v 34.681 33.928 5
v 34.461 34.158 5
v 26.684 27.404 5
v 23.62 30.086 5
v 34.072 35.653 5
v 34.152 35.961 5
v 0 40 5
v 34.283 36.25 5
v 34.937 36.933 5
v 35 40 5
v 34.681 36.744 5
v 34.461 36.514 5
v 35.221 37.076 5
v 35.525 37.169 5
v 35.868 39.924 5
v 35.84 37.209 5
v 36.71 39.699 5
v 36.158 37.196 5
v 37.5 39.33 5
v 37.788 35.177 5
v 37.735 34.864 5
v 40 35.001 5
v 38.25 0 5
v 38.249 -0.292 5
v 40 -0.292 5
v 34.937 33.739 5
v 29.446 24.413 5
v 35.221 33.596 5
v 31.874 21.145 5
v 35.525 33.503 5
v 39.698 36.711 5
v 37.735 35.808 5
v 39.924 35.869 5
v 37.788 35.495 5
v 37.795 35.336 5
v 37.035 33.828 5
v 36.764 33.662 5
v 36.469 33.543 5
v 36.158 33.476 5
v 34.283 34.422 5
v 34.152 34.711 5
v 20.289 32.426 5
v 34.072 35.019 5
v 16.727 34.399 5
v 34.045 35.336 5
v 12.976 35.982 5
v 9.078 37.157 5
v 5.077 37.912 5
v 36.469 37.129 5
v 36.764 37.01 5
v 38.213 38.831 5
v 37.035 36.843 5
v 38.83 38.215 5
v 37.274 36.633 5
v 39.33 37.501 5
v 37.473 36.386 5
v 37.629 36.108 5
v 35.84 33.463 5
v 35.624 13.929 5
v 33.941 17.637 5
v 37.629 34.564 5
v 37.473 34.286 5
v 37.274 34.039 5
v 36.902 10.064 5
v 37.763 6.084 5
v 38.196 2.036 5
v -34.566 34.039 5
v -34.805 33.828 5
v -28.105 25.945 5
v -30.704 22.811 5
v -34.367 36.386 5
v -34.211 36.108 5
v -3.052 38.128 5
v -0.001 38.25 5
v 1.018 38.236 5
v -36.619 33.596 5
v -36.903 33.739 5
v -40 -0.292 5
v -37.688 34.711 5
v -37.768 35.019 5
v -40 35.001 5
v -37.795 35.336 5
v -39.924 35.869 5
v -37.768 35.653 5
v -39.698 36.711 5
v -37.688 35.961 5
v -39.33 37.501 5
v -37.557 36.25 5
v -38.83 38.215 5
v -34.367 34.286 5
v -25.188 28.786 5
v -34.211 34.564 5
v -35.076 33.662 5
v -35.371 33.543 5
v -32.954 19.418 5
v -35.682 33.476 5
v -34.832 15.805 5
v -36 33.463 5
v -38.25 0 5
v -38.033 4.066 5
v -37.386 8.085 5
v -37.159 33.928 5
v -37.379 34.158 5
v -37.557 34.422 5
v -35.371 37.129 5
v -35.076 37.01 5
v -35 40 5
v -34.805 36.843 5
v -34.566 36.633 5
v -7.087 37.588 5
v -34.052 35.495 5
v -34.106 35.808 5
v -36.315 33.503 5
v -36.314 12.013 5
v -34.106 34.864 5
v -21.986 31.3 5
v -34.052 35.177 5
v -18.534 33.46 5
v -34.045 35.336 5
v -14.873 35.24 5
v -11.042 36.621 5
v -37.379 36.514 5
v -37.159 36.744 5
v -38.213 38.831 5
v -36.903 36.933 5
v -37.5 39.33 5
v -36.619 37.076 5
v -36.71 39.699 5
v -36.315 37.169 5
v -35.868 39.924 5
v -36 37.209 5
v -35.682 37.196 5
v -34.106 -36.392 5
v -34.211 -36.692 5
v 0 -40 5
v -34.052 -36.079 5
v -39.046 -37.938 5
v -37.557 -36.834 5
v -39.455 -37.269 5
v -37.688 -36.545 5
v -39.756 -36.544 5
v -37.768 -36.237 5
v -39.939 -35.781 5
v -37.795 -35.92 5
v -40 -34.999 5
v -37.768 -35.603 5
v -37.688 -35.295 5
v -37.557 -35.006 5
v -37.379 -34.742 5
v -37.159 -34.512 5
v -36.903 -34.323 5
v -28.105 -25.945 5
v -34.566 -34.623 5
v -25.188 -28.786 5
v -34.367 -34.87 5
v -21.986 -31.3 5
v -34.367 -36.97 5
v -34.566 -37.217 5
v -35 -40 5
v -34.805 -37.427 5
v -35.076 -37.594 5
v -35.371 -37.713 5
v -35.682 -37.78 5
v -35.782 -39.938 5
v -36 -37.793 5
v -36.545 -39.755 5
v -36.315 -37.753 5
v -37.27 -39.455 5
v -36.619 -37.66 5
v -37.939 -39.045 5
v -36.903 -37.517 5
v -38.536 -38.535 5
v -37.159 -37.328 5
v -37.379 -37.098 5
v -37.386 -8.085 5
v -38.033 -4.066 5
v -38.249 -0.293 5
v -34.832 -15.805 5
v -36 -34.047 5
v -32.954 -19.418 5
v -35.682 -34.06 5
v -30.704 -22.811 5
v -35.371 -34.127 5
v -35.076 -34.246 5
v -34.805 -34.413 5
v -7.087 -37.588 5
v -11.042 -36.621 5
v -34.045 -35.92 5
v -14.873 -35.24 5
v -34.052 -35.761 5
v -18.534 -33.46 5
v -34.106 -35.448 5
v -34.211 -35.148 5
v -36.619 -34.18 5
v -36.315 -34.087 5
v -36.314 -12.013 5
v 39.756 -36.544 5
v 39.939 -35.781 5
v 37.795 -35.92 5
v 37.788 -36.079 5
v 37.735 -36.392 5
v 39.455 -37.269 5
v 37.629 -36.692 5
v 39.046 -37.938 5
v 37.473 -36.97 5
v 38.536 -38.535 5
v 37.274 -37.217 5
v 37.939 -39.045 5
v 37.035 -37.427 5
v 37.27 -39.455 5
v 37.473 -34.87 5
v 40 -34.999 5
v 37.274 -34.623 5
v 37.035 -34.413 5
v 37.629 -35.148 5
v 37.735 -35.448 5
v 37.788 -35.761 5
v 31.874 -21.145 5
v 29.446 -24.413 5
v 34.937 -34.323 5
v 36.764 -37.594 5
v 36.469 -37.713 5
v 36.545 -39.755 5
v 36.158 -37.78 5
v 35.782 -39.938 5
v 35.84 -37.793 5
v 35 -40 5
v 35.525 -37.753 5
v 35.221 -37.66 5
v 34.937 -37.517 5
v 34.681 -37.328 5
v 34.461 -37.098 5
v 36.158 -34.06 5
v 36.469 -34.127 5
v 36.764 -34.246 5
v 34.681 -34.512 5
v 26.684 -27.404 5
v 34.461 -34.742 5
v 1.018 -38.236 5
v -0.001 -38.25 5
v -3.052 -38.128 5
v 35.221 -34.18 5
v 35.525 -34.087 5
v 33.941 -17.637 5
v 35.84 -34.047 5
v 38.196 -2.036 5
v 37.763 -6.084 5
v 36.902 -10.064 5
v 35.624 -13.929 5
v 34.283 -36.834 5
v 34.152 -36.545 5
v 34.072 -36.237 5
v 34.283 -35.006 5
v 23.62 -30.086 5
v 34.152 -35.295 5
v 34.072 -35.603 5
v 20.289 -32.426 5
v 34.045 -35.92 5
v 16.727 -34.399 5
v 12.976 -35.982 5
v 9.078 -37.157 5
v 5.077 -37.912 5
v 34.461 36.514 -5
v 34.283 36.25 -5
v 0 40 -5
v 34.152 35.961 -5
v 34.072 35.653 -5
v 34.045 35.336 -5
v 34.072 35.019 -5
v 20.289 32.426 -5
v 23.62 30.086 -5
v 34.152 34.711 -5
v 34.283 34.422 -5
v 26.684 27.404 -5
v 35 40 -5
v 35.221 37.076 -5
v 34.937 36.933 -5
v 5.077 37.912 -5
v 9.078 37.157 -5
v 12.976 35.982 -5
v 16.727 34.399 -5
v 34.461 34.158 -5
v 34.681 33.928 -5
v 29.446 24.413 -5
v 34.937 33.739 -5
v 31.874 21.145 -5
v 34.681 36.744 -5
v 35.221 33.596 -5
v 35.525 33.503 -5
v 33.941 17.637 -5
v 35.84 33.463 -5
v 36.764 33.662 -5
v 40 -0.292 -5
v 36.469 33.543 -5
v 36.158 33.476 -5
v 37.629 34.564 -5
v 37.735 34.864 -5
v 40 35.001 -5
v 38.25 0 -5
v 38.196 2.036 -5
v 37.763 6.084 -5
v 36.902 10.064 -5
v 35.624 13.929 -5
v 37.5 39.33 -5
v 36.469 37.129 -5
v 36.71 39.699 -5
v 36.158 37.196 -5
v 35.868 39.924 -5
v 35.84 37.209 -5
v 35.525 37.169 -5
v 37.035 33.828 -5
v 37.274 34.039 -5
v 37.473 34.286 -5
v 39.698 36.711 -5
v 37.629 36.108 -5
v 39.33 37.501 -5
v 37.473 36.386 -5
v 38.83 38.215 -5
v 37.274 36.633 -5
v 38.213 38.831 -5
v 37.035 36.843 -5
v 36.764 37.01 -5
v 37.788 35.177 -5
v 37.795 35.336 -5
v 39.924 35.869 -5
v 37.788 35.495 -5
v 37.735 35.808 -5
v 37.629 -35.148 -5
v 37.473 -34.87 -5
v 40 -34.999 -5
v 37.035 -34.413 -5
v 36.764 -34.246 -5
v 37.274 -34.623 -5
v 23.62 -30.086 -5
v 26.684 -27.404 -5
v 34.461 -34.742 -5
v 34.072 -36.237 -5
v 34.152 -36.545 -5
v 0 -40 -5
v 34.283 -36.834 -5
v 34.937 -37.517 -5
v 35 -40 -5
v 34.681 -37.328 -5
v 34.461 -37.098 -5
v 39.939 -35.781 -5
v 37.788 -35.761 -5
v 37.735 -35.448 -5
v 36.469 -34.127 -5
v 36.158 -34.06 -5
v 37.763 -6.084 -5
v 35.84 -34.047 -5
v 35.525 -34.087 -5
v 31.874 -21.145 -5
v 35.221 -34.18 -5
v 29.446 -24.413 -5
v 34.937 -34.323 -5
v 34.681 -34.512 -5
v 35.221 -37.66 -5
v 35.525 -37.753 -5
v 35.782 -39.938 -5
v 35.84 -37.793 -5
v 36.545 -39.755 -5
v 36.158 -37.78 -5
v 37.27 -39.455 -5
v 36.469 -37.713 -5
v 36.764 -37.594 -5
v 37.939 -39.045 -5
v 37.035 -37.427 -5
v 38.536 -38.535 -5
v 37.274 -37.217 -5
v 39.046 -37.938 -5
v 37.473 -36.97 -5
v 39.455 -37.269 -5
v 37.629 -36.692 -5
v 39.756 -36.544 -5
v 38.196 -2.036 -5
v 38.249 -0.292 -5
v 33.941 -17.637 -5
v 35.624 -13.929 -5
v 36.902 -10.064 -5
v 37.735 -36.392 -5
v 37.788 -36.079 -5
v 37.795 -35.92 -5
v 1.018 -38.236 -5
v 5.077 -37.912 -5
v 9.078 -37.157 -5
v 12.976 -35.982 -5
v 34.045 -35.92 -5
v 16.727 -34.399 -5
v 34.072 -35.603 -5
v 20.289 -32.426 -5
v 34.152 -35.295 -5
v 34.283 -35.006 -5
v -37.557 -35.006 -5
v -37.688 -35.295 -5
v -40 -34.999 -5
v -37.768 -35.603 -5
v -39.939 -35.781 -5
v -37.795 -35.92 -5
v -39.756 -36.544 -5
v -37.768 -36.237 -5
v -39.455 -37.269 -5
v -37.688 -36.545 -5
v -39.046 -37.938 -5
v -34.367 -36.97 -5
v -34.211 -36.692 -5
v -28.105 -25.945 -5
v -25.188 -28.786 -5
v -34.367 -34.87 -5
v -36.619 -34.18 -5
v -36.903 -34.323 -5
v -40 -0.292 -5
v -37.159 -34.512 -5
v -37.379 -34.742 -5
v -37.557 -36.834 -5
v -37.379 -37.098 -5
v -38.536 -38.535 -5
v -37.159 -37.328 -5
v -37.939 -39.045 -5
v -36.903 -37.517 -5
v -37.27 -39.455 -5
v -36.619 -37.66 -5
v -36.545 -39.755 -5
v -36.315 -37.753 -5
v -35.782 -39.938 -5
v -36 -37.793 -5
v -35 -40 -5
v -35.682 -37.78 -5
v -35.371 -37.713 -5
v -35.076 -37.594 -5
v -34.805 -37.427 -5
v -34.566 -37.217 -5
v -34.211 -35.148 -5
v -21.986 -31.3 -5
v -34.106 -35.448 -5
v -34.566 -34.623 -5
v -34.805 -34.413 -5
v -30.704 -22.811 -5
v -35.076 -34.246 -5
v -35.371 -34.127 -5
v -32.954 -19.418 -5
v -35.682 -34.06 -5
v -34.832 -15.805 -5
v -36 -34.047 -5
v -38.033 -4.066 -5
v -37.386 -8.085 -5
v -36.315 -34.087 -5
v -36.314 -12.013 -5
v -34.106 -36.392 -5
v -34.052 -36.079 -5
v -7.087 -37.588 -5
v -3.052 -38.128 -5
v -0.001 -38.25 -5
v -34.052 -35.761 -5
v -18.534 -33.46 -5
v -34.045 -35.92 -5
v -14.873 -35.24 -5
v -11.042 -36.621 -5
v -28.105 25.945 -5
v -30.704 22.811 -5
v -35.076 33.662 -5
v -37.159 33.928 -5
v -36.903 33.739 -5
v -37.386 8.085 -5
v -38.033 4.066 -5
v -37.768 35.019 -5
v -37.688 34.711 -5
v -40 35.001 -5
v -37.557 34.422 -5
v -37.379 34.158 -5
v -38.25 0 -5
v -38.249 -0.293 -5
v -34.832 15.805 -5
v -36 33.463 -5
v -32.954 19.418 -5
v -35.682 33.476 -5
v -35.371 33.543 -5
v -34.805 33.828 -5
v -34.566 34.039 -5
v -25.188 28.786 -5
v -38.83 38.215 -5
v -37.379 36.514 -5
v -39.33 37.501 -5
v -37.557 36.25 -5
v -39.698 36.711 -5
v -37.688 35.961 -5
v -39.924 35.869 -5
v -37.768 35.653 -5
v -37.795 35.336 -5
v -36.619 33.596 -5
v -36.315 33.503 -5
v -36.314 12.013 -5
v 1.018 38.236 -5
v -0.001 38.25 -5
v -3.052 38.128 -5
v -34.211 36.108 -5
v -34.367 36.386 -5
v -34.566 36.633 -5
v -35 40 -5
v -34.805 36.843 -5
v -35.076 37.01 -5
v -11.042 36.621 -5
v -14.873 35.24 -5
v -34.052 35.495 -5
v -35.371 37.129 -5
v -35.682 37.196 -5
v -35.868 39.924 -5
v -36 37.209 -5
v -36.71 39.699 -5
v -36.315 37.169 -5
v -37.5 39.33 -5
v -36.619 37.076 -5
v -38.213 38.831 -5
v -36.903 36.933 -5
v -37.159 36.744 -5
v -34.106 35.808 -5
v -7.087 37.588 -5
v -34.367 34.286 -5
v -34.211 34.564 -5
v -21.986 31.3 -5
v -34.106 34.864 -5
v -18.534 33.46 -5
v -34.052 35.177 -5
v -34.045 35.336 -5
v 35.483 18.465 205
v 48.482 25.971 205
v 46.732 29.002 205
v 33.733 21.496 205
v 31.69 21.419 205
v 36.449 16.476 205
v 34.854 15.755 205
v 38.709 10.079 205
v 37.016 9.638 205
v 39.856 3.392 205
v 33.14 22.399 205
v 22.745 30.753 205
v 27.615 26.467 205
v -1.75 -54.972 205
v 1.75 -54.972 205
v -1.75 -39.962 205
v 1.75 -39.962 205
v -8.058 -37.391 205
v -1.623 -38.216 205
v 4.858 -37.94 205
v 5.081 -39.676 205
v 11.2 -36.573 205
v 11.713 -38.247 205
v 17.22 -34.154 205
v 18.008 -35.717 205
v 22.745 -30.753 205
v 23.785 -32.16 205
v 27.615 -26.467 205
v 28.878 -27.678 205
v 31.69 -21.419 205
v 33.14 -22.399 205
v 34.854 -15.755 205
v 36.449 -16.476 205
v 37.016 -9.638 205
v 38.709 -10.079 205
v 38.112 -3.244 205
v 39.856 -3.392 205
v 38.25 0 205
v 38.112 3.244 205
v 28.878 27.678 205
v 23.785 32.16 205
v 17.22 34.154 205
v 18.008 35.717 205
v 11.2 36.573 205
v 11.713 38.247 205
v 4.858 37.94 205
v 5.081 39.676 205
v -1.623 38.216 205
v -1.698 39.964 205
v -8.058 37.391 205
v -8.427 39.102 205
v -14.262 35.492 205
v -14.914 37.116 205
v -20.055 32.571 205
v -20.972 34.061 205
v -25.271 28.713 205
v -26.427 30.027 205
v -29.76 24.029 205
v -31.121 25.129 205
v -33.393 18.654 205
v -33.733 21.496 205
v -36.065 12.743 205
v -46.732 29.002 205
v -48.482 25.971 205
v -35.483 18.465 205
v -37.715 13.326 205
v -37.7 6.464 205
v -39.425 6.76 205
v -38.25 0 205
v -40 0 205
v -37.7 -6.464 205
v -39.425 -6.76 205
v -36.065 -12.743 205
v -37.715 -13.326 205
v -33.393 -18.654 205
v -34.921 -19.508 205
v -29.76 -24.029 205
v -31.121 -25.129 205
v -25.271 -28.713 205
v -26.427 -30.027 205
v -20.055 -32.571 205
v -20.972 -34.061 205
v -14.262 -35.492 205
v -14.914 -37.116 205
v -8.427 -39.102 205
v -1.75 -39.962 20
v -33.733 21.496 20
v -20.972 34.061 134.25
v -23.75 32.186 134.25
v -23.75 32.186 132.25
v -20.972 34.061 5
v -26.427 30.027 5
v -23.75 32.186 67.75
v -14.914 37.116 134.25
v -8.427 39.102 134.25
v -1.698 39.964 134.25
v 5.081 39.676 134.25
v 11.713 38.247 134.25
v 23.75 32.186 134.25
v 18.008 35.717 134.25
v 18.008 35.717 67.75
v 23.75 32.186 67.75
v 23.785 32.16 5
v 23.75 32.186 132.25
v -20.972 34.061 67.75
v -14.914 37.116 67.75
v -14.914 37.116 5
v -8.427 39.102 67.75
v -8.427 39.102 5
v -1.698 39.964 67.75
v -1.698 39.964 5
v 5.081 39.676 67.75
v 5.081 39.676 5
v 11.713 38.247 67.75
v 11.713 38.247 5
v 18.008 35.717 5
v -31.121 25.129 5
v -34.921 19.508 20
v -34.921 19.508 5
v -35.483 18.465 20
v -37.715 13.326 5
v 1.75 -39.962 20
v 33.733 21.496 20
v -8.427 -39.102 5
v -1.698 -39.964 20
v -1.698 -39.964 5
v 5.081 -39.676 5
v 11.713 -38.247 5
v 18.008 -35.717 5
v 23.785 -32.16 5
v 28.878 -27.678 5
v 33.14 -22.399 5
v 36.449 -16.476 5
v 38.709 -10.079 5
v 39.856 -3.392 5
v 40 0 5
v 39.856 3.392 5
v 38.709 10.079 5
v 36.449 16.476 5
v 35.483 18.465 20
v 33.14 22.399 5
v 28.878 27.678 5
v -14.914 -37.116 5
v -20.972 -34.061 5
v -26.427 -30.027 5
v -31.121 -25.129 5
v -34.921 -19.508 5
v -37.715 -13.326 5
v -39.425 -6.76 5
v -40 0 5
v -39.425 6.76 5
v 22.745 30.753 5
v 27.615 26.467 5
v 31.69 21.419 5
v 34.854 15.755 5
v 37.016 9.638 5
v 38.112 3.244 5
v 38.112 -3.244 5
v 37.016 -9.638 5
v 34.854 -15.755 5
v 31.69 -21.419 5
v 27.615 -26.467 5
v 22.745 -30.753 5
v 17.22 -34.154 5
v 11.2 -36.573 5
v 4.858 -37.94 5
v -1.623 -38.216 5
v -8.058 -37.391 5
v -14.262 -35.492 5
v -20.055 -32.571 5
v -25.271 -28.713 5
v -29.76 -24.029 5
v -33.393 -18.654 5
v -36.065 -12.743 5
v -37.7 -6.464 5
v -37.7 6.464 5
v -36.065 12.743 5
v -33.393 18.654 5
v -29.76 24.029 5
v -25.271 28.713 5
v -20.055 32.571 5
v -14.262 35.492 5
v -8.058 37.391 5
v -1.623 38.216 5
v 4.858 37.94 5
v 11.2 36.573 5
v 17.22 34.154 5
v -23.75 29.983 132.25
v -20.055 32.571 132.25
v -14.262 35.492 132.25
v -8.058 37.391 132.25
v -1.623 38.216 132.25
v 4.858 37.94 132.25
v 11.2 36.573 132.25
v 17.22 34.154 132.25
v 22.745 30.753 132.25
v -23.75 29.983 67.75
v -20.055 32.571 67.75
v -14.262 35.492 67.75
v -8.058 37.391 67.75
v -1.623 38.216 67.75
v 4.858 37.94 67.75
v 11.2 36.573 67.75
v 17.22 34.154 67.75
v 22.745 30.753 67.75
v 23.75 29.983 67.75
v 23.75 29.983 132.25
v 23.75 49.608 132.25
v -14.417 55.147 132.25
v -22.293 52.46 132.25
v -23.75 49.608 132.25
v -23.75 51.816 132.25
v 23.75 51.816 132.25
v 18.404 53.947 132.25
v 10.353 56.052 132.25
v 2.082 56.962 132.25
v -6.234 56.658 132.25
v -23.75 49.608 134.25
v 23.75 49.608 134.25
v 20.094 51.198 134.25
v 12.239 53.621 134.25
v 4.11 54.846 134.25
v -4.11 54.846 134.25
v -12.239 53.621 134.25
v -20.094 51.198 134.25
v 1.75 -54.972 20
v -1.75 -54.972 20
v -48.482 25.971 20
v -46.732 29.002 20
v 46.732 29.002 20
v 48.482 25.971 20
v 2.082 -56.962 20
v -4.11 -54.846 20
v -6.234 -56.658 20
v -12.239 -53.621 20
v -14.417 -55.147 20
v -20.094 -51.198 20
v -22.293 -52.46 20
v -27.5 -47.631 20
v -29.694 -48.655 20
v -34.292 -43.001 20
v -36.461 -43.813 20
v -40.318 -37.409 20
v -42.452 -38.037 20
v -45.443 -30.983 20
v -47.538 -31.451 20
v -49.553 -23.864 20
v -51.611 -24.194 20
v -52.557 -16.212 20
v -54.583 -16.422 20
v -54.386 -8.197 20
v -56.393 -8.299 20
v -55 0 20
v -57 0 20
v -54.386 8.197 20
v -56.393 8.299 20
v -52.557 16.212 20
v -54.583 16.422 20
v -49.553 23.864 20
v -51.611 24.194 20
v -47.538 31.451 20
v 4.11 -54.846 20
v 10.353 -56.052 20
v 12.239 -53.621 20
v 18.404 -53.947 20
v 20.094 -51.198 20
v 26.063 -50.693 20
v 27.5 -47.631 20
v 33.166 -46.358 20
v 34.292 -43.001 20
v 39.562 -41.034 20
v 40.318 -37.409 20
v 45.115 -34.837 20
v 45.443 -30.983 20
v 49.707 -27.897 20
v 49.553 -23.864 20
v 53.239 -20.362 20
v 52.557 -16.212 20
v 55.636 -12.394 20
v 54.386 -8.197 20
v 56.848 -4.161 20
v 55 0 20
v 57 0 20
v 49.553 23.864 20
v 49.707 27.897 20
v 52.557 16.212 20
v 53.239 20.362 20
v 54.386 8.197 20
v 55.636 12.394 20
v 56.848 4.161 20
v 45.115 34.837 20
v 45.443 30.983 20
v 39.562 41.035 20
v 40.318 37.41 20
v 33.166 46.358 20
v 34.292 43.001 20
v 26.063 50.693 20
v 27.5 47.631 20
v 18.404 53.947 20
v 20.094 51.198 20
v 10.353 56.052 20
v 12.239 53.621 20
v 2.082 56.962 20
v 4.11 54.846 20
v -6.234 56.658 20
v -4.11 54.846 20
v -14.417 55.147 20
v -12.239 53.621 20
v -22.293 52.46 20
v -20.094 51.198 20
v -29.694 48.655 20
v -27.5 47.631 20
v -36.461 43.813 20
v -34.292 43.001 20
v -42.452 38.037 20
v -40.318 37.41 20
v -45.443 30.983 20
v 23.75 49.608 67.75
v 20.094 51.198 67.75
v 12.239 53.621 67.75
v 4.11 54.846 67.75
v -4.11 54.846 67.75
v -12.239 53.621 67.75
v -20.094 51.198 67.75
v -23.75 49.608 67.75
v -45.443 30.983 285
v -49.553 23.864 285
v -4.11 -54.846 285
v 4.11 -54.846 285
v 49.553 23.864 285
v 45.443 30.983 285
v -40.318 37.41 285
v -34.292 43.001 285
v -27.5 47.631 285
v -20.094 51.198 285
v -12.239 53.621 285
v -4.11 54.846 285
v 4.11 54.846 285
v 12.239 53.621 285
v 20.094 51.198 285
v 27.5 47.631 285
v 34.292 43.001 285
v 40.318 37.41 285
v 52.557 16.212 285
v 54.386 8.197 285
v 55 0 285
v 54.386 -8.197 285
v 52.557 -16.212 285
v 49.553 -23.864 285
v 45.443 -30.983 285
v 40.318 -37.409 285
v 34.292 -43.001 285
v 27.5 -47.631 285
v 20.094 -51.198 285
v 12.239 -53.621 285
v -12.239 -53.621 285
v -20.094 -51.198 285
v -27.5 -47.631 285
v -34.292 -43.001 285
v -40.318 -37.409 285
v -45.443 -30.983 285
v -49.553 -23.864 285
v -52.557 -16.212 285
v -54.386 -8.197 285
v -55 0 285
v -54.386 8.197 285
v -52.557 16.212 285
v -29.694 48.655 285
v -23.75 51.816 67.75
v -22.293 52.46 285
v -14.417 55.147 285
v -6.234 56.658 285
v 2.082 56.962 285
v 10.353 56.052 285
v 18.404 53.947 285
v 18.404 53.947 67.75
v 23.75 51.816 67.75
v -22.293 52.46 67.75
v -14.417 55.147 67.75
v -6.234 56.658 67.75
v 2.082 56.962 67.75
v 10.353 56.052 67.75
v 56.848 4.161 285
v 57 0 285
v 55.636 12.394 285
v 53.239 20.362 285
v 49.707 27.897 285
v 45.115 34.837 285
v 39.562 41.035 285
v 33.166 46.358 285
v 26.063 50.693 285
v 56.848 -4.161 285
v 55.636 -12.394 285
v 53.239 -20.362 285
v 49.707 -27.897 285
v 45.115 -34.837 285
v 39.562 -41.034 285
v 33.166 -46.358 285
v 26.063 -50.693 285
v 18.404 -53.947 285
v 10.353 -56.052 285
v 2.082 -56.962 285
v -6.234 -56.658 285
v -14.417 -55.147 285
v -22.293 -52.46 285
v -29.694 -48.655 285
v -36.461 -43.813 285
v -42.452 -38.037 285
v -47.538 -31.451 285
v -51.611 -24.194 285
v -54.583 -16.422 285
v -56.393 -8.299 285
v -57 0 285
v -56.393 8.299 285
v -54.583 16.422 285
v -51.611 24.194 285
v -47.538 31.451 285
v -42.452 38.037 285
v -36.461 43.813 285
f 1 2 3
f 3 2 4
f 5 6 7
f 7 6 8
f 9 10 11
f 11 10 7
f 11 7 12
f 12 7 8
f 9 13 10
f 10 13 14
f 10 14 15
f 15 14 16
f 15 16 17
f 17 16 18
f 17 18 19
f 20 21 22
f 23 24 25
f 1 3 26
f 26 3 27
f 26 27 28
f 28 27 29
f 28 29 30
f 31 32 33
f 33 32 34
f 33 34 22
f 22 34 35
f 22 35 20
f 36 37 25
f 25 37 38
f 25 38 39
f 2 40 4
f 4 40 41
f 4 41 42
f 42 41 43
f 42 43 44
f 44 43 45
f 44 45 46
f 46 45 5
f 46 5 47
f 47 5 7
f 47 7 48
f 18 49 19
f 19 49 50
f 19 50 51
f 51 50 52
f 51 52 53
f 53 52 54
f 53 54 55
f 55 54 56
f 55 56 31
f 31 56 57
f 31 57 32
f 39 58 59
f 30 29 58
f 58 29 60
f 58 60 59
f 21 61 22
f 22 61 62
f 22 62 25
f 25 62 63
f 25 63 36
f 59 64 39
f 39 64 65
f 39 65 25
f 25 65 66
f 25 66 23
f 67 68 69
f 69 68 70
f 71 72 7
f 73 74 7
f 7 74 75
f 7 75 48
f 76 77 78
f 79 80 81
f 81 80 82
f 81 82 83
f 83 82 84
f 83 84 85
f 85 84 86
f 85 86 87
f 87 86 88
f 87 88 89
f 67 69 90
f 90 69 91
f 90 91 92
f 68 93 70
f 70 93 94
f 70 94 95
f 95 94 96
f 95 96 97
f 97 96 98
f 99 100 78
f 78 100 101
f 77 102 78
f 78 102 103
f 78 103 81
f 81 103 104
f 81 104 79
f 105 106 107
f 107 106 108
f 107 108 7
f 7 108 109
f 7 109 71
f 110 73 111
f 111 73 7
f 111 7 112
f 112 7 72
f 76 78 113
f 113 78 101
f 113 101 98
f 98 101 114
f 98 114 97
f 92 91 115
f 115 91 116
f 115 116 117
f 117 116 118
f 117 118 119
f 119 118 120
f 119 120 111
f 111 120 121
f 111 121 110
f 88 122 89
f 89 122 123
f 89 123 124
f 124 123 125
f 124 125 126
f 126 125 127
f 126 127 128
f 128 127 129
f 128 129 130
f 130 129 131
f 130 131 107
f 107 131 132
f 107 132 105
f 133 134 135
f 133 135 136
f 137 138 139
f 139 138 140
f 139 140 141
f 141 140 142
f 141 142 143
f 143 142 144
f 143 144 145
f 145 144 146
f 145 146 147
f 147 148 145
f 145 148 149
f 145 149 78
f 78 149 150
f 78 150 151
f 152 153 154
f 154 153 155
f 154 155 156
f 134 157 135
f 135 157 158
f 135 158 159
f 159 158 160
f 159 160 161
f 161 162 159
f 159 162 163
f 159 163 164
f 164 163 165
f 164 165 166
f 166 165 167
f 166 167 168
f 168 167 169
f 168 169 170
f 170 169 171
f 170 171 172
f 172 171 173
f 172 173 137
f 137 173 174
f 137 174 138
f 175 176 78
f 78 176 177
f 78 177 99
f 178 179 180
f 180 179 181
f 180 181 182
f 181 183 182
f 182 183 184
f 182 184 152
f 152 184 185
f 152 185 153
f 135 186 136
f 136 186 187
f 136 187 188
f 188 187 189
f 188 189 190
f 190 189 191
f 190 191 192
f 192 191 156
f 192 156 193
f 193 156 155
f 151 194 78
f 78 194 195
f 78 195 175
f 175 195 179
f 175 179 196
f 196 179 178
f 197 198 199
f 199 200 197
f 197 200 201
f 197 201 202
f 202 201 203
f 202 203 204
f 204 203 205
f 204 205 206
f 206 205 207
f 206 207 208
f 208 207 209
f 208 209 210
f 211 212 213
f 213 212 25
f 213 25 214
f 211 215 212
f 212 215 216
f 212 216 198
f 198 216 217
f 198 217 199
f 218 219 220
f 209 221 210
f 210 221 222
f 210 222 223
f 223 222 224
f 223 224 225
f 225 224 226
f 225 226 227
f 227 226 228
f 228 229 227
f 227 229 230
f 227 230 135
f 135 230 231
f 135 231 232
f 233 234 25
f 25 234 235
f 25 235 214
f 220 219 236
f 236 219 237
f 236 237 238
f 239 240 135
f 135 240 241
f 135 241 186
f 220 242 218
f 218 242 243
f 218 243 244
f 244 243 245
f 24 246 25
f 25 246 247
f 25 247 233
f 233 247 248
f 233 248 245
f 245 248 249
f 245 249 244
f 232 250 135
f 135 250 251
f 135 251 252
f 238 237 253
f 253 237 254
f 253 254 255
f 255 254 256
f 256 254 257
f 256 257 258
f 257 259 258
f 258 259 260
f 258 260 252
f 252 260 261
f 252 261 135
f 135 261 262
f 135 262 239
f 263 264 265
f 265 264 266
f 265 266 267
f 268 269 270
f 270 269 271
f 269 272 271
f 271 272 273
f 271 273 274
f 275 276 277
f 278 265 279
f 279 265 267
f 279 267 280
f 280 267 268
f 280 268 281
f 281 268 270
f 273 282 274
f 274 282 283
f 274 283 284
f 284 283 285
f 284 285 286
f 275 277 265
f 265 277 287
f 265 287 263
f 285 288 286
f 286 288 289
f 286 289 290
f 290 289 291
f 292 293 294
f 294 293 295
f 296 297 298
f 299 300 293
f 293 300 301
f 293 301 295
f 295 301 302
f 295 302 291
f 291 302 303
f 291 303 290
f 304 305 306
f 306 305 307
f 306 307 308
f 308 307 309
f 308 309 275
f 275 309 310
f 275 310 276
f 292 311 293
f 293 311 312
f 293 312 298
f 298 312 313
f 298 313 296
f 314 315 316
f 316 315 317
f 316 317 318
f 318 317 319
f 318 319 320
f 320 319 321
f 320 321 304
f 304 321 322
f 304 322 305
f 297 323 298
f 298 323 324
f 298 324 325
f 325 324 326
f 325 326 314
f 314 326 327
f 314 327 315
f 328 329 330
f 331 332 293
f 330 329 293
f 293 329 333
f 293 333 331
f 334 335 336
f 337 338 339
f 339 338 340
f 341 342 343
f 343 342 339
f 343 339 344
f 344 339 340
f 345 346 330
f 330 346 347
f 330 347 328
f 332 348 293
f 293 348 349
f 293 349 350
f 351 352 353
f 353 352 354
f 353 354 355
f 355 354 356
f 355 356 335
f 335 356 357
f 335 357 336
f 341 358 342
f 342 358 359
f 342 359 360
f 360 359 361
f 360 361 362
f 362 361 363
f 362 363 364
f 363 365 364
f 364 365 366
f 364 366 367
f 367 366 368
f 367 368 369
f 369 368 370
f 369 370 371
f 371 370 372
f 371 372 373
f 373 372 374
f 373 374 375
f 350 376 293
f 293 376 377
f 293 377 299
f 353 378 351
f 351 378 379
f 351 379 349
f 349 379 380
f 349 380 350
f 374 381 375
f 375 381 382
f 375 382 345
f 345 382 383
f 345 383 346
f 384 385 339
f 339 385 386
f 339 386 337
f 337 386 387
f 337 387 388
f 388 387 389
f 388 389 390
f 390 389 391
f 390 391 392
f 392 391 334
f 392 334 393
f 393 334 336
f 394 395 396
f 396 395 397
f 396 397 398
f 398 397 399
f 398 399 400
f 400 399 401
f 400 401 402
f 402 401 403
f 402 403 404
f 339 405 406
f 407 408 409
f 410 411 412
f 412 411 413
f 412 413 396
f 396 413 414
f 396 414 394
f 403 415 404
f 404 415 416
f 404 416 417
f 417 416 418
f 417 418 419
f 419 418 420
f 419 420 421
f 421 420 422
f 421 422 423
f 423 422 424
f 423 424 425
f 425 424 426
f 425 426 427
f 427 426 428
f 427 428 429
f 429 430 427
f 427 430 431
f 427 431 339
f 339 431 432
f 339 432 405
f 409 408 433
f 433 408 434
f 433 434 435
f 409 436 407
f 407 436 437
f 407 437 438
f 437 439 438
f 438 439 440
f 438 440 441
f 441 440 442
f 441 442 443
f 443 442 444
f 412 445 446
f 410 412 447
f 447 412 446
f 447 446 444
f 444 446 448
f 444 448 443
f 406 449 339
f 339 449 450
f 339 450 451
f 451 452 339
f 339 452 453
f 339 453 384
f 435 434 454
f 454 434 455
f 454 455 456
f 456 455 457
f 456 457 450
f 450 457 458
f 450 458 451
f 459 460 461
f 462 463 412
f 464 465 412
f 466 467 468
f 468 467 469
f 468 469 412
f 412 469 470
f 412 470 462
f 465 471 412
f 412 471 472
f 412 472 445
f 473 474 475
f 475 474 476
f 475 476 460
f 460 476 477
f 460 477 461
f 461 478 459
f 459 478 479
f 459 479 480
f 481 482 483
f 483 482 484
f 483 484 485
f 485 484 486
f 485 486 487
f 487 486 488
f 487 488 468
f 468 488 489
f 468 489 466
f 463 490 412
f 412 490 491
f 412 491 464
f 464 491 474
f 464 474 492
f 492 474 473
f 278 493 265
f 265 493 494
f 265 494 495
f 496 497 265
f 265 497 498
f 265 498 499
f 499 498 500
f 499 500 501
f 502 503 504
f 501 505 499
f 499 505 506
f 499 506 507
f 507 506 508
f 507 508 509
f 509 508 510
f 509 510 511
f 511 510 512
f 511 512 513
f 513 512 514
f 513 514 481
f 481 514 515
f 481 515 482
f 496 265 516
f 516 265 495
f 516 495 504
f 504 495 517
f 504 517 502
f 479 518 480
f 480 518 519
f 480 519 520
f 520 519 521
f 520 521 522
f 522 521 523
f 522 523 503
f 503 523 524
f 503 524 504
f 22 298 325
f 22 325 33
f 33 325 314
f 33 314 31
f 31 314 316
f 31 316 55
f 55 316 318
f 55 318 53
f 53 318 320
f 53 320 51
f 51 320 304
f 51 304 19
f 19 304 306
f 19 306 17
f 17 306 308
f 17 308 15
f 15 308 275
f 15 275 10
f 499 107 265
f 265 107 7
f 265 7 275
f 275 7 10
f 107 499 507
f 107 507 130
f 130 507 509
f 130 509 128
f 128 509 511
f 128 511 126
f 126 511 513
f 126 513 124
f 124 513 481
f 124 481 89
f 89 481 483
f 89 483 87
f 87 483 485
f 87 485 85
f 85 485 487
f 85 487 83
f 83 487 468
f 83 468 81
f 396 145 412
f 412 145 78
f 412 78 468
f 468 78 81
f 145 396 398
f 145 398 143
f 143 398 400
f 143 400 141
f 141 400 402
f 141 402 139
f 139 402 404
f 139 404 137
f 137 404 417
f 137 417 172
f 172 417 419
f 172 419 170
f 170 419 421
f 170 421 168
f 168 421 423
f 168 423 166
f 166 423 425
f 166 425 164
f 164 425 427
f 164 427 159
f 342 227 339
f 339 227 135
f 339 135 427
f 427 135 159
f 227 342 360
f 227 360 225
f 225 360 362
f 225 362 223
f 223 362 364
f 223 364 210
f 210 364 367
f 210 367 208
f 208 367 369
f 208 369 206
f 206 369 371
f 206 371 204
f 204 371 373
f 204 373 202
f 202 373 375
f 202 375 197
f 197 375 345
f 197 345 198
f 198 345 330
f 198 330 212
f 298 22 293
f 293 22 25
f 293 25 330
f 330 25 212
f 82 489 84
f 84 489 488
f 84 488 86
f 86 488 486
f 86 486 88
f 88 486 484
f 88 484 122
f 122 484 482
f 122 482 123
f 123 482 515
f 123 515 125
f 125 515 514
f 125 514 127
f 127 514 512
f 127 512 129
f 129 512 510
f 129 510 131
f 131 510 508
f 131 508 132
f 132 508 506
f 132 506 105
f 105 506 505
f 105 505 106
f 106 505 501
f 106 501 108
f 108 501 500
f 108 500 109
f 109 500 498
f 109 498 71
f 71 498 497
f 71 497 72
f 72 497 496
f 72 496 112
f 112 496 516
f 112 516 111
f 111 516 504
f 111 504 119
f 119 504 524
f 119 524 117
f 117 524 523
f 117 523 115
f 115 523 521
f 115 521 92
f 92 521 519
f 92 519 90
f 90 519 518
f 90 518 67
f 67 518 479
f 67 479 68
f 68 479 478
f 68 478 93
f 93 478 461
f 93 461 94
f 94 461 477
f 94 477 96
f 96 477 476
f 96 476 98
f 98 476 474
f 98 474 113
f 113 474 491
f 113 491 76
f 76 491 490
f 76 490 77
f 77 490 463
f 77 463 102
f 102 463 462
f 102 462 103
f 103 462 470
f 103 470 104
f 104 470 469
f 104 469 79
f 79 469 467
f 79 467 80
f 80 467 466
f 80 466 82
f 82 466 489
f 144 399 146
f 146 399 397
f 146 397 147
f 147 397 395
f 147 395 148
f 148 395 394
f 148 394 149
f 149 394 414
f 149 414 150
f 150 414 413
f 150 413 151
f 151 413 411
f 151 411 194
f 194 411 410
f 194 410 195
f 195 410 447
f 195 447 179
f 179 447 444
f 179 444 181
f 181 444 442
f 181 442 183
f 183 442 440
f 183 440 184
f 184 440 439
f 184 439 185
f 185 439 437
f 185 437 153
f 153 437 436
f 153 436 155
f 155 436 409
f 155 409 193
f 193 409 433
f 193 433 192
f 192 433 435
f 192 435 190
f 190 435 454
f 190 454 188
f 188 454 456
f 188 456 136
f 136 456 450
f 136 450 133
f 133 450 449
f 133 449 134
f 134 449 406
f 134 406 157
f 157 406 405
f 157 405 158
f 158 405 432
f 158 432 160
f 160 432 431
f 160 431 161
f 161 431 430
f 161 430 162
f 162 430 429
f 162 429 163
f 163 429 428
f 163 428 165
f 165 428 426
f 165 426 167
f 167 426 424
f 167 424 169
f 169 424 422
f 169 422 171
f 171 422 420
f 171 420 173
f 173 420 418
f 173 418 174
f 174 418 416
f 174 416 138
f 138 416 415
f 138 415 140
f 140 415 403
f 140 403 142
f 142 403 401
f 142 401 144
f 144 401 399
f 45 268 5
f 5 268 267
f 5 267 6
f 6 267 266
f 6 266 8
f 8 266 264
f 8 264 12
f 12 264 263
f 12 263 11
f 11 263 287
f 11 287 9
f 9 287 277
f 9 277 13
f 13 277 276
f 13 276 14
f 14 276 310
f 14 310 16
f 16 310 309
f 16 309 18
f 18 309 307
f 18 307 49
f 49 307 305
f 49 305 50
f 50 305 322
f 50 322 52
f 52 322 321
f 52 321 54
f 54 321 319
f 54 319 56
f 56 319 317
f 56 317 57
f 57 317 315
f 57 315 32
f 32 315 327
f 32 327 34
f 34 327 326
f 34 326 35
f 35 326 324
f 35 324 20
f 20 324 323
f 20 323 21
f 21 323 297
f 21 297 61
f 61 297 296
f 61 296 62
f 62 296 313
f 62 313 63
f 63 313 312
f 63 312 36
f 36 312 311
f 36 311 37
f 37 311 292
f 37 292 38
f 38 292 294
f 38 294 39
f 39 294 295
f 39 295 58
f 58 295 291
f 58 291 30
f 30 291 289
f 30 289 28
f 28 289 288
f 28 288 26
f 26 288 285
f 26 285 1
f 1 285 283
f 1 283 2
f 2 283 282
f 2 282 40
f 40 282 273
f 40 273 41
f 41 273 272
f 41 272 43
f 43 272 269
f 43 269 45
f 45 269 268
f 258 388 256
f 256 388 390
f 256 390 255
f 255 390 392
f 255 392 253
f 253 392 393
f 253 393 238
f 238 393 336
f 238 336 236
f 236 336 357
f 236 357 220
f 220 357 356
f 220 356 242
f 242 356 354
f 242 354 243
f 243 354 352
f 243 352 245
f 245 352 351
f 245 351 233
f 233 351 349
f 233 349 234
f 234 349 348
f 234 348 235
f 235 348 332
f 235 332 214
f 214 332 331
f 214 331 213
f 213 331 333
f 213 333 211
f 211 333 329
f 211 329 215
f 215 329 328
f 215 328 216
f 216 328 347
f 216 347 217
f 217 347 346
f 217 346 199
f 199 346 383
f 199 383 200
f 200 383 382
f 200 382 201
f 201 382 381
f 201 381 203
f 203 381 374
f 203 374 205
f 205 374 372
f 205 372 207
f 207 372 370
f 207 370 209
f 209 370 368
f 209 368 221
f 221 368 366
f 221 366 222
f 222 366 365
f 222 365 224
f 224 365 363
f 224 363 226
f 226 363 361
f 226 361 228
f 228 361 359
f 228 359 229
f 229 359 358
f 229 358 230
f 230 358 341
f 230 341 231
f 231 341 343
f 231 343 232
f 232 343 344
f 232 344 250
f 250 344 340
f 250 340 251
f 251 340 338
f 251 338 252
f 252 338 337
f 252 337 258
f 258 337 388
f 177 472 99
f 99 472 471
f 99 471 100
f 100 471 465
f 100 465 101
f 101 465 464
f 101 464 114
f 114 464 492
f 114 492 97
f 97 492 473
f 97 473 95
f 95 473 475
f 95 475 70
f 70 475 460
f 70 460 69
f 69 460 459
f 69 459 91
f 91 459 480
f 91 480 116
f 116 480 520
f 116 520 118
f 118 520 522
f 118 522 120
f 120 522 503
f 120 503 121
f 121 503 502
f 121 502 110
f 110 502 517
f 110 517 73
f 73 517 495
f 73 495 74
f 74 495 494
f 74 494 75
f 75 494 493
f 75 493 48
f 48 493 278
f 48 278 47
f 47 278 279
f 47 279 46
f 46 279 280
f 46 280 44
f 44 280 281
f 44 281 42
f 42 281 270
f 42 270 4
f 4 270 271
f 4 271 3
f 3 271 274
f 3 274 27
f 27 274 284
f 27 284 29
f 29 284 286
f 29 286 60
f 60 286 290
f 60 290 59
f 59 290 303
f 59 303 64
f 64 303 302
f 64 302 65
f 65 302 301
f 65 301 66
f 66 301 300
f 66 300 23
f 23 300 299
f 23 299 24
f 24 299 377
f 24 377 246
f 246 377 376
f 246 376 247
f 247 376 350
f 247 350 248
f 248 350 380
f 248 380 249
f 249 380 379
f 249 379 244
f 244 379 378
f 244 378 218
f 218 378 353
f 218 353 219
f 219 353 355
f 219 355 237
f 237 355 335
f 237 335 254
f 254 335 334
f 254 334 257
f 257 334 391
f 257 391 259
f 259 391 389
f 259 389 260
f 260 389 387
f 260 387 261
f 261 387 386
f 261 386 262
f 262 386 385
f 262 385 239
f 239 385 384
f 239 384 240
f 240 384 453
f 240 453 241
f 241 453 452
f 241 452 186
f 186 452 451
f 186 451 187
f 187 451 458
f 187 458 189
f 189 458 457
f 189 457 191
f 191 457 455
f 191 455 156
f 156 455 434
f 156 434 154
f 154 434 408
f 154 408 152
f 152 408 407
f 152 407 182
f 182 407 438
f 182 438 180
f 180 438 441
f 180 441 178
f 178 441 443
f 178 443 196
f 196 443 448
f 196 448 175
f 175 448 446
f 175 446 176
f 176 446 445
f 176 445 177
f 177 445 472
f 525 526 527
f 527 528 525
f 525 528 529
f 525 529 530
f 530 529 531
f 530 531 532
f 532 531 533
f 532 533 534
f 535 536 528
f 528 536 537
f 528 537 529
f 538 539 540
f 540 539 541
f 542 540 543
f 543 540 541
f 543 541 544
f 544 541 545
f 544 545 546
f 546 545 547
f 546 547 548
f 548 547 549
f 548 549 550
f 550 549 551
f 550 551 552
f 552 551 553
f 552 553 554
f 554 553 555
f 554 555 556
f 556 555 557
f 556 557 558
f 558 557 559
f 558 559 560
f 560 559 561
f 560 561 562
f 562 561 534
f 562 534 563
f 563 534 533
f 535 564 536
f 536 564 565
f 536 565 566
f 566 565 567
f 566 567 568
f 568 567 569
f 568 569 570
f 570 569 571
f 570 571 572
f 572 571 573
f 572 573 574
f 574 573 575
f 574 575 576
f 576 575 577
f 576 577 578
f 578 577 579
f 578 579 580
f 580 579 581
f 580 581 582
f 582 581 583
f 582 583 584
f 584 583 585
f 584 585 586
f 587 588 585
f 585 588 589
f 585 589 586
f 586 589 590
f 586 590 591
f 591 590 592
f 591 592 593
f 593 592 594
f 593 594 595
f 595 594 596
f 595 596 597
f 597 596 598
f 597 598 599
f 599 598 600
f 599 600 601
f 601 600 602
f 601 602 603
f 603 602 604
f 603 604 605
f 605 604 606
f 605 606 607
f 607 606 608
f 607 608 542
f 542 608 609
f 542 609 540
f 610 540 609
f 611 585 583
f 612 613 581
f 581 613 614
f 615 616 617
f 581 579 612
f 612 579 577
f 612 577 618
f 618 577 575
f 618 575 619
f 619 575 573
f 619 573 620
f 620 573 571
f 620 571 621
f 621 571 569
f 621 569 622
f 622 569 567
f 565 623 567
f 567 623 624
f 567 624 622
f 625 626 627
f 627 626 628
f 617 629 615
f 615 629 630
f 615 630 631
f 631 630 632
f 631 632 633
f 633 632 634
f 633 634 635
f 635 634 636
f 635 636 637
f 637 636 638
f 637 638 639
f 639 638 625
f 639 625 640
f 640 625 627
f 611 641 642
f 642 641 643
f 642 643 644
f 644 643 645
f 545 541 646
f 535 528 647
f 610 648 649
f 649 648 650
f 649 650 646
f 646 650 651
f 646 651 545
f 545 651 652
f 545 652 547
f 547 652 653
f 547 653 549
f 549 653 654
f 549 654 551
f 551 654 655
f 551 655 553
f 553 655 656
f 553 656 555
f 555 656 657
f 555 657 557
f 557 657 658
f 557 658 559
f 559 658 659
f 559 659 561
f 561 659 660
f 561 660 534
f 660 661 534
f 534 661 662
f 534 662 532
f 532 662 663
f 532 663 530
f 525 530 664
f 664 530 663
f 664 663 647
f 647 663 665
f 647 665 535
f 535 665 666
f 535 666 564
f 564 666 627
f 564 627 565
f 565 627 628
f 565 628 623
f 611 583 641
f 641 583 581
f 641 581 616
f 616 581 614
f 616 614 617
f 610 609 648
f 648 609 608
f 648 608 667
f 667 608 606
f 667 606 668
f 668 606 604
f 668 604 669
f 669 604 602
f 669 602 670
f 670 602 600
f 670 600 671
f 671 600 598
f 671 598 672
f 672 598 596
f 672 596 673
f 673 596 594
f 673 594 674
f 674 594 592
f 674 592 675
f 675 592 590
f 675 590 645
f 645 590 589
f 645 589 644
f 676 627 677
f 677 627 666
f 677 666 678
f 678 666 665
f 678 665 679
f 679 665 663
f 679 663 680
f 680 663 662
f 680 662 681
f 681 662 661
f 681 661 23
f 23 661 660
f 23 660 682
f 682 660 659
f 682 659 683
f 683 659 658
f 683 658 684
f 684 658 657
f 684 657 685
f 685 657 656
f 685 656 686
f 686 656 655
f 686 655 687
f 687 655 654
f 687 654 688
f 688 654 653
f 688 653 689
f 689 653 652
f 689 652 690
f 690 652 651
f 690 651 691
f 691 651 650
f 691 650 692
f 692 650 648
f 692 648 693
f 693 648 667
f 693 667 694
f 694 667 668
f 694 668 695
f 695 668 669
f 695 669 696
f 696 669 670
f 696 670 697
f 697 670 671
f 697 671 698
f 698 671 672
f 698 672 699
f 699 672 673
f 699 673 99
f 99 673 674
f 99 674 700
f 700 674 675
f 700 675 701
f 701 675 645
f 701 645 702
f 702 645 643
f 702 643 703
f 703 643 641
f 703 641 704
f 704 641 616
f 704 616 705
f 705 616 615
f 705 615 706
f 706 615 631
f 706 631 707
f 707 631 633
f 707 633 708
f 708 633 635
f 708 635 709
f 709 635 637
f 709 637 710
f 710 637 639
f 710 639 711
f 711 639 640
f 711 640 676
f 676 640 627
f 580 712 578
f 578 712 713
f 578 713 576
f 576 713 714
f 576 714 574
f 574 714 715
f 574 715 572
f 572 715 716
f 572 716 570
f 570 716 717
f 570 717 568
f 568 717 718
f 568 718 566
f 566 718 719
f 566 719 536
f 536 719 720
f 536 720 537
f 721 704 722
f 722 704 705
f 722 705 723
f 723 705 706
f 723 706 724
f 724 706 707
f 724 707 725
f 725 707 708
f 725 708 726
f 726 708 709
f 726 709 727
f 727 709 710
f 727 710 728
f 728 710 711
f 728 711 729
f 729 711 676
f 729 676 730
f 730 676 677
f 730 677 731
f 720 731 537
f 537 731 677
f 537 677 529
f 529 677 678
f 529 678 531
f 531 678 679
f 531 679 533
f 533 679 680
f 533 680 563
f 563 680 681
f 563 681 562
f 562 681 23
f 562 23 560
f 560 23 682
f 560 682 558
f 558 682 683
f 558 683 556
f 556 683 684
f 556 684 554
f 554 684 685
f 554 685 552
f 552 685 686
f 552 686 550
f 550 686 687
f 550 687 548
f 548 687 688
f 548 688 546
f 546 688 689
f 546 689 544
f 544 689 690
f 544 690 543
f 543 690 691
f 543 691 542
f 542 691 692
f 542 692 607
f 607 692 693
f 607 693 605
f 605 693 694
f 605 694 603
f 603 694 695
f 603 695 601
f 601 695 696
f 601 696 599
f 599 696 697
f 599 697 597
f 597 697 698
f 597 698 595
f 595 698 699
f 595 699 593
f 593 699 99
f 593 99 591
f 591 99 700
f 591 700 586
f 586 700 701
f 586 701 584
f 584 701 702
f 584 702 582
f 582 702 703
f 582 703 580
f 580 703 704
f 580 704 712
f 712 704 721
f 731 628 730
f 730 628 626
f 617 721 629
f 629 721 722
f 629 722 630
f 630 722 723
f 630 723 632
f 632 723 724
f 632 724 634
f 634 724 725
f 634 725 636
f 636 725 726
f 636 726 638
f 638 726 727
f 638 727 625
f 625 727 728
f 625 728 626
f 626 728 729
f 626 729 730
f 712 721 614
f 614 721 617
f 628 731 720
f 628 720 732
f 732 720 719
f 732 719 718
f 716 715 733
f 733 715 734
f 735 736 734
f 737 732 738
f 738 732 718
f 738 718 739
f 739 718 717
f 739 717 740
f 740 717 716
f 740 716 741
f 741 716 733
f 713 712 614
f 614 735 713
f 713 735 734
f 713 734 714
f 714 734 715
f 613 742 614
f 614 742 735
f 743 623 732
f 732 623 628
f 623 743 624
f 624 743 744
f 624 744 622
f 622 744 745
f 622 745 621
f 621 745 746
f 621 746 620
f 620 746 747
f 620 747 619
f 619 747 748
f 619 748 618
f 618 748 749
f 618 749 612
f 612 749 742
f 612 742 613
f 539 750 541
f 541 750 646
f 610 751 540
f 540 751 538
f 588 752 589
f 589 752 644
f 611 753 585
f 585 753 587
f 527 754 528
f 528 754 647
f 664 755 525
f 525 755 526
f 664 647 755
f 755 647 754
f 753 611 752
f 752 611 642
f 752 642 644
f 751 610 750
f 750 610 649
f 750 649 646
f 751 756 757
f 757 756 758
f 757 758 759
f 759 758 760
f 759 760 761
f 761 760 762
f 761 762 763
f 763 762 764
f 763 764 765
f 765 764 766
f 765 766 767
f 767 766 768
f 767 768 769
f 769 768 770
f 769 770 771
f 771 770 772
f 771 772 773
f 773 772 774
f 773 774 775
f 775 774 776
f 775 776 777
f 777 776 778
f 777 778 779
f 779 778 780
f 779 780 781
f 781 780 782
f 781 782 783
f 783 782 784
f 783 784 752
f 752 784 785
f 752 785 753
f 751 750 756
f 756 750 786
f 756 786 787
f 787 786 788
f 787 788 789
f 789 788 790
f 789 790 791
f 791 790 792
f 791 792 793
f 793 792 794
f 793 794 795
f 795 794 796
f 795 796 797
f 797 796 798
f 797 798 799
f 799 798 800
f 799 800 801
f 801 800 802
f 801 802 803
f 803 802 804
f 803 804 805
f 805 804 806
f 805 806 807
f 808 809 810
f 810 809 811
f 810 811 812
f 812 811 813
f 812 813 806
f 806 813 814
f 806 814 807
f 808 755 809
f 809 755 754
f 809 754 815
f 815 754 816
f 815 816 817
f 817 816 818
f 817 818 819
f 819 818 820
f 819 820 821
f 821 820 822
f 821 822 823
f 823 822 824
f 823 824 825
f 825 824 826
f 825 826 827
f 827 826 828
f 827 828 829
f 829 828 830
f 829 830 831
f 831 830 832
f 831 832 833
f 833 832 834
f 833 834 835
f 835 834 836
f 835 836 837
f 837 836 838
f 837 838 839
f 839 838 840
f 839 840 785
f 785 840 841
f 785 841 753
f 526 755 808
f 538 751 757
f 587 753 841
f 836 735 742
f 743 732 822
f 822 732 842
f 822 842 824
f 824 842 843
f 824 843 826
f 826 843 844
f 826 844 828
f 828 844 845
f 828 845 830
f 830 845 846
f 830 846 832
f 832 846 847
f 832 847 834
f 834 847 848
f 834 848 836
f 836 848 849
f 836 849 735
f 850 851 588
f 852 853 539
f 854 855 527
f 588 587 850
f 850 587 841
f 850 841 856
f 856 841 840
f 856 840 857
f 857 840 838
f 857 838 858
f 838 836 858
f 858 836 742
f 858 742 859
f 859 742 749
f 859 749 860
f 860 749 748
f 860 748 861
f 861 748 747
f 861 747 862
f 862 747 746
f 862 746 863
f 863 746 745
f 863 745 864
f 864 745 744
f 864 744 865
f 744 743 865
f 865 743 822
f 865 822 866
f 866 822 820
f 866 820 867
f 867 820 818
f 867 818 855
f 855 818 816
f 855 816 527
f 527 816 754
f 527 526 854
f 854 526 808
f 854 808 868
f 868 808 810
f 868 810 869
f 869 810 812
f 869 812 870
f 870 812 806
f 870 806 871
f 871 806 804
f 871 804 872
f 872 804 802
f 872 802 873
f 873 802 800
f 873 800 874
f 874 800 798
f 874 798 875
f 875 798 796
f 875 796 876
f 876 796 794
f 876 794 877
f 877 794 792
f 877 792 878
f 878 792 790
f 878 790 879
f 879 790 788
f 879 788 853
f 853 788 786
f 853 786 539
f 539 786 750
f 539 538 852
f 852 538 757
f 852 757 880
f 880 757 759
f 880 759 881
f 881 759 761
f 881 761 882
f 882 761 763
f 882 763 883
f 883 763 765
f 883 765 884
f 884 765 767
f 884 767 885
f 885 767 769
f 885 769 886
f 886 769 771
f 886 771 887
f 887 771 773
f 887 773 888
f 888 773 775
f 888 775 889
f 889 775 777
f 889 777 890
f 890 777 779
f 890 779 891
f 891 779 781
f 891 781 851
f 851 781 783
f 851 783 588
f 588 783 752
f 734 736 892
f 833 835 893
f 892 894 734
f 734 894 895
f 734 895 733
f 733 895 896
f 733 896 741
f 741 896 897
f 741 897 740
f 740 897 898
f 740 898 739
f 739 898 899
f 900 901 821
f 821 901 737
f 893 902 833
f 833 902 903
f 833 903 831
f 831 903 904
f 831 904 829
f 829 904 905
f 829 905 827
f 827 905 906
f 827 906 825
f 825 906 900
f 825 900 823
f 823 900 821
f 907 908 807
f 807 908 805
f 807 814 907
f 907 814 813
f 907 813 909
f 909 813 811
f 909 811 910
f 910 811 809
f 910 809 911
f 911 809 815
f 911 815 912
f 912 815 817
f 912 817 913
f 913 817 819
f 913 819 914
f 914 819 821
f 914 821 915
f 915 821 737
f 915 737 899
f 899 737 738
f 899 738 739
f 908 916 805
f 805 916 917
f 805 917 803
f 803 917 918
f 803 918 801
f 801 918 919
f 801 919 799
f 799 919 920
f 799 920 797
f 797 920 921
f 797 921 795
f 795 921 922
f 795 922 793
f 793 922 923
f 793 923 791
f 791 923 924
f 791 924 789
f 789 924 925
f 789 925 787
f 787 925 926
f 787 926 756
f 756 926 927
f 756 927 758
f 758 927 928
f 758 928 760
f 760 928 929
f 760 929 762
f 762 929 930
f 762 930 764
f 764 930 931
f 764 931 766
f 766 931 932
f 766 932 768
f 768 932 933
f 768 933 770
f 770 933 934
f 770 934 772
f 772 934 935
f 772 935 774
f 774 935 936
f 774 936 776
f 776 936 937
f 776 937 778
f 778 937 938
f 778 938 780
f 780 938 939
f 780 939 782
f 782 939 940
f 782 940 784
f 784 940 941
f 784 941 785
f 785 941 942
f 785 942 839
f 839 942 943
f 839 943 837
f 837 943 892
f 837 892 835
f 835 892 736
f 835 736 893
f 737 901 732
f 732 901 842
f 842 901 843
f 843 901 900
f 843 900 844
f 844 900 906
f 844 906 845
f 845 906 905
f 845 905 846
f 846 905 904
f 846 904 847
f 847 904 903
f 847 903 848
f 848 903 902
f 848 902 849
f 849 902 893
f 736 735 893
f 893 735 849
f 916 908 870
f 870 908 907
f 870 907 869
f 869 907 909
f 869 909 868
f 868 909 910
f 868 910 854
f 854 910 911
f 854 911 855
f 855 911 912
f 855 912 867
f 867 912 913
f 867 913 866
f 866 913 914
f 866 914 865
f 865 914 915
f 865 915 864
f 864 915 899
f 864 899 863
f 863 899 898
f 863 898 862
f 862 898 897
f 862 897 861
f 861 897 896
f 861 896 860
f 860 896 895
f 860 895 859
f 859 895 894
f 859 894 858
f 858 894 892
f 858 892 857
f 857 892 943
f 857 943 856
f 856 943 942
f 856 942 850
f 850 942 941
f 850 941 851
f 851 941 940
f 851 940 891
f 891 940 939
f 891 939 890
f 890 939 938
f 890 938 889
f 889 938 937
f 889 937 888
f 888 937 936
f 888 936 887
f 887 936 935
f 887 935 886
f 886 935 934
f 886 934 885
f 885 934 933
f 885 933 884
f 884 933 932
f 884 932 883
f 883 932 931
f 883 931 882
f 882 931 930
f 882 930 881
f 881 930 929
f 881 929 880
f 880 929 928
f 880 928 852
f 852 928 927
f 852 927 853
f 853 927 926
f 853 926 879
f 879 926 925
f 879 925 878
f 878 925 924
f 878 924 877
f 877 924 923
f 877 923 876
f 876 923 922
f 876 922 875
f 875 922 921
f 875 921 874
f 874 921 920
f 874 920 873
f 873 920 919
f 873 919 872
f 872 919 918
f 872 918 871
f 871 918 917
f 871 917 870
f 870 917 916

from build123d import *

# Parameters (mm, degrees)
SKETCH1_R           = 1.875000007
SKETCH1_R_2         = 1.875000005
SKETCH1_R_3         = 1.874999993
SKETCH1_R_4         = 1.874999991
SKETCH1_R_5         = 38.25
BOSS_EXTRUDE1_DEPTH = 5
SKETCH2_R           = 40
SKETCH2_R_2         = 38.25
BOSS_EXTRUDE2_DEPTH = 200
SKETCH3_R           = 57
SKETCH3_R_2         = 55
BOSS_EXTRUDE3_DEPTH = 185
SKETCH4_W           = 47.5
SKETCH4_H           = 64.5
CUT_EXTRUDE1_DEPTH  = 221.279368076
BOSS_EXTRUDE4_DEPTH = 2
SKETCH6_R           = 57
SKETCH6_R_2         = 55
BOSS_EXTRUDE5_DEPTH = 80


with BuildPart() as part:
    # Sketch1 → Boss-Extrude1 (new, symmetric)
    with BuildSketch(Plane.XY):
        with BuildLine():
            Line((35, 40), (-35, 40))
            ThreePointArc((-35, 40), (-38.535031951, 38.536035991), (-40, 35.001420011))
            Line((-40, 35.001420011), (-40, -34.998579989))
            ThreePointArc((-40, -34.998579989), (-38.53603605, -38.535031892), (-35, -40))
            Line((-35, -40), (35, -40))
            ThreePointArc((35, -40), (38.53603605, -38.535031892), (40, -34.998579989))
            Line((40, -34.998579989), (40, 35.001420011))
            ThreePointArc((40, 35.001420011), (38.535031951, 38.536035991), (35, 40))
        make_face()
        with Locations((-35.920000129, 35.335989014)):
            Circle(SKETCH1_R, mode=Mode.SUBTRACT)
        with Locations((-35.920000129, -35.919999922)):
            Circle(SKETCH1_R_2, mode=Mode.SUBTRACT)
        with Locations((35.920000129, 35.335989014)):
            Circle(SKETCH1_R_3, mode=Mode.SUBTRACT)
        with Locations((35.920000129, -35.919999922)):
            Circle(SKETCH1_R_4, mode=Mode.SUBTRACT)
        Circle(SKETCH1_R_5, mode=Mode.SUBTRACT)
    extrude(amount=BOSS_EXTRUDE1_DEPTH, both=True)


with BuildPart() as body_2:
    # Sketch2 → Boss-Extrude2 (new body)
    with BuildSketch(Plane.XY.offset(5)):
        Circle(SKETCH2_R)
        Circle(SKETCH2_R_2, mode=Mode.SUBTRACT)
    extrude(amount=BOSS_EXTRUDE2_DEPTH)


with BuildPart() as body_3:
    # Sketch3 → Boss-Extrude3 (new, through all)
    # profile 1 of 4: a face of its own
    with BuildSketch(Plane.XY.offset(20)):
        Circle(SKETCH3_R)
        Circle(SKETCH3_R_2, mode=Mode.SUBTRACT)
    # profile 2 of 4: a face of its own
    with BuildSketch(Plane.XY.offset(20)):
        with BuildLine():
            ThreePointArc((1.75, -38.209946349), (0, -38.25), (-1.75, -38.209946349))
            Line((-1.75, -38.209946349), (-1.75, -54.972152041))
            ThreePointArc((-1.75, -54.972152041), (0, -55), (1.75, -54.972152041))
            Line((1.75, -54.972152041), (1.75, -38.209946349))
        make_face()
    # profile 3 of 4: a face of its own
    with BuildSketch(Plane.XY.offset(20)):
        with BuildLine():
            Line((-48.482280168, 25.970531564), (-33.965784216, 17.589428718))
            ThreePointArc((-33.965784216, 17.589428718), (-33.125471695, 19.125), (-32.215784216, 20.620517631))
            Line((-32.215784216, 20.620517631), (-46.732280168, 29.001620477))
            ThreePointArc((-46.732280168, 29.001620477), (-47.631397208, 27.5), (-48.482280168, 25.970531564))
        make_face()
    # profile 4 of 4: a face of its own
    with BuildSketch(Plane.XY.offset(20)):
        with BuildLine():
            Line((46.732280168, 29.001620477), (32.215784216, 20.620517631))
            ThreePointArc((32.215784216, 20.620517631), (33.125471695, 19.125), (33.965784216, 17.589428718))
            Line((33.965784216, 17.589428718), (48.482280168, 25.970531564))
            ThreePointArc((48.482280168, 25.970531564), (47.631397208, 27.5), (46.732280168, 29.001620477))
        make_face()
    extrude(amount=BOSS_EXTRUDE3_DEPTH)


with BuildPart() as cut_extrude1_tool:
    # Sketch4 → Cut-Extrude1 (new, through all)
    with BuildSketch(Plane(origin=(0, 0, 0), x_dir=(1, 0, 0), z_dir=(0, 1, 0))):
        with Locations((0, -100)):
            Rectangle(SKETCH4_W, SKETCH4_H)
    extrude(amount=CUT_EXTRUDE1_DEPTH)


with BuildPart() as body_2_1:
    add(body_2.part)

    # Cut-Extrude1: cut by cut_extrude1_tool
    add(cut_extrude1_tool.part, mode=Mode.SUBTRACT)



with BuildPart() as body_3_1:
    add(body_3.part)

    # Cut-Extrude1: cut by cut_extrude1_tool
    add(cut_extrude1_tool.part, mode=Mode.SUBTRACT)


with BuildPart() as body_2_2:
    add(body_2_1.part)

    add(body_3_1.part)  # Boss-Extrude4 merges body 3
    # Sketch5 → Boss-Extrude4 (add)
    with BuildSketch(Plane(origin=(0, 0, 132.25), x_dir=(-1, 0, 0), z_dir=(0, 0, -1))):
        with BuildLine():
            Line((23.75, 49.607837082), (23.75, 32.185982974))
            ThreePointArc((23.75, 32.185982974), (0, 40), (-23.75, 32.185982974))
            Line((-23.75, 32.185982974), (-23.75, 49.607837082))
            ThreePointArc((-23.75, 49.607837082), (0, 55), (23.75, 49.607837082))
        make_face()
    extrude(amount=-BOSS_EXTRUDE4_DEPTH)

    # Sketch6 → Boss-Extrude5 (add)
    with BuildSketch(Plane.XY.offset(205)):
        Circle(SKETCH6_R)
        with Locations(Location((0, 0, 0), (0, 0, 151.823355278))):
            Circle(SKETCH6_R_2, mode=Mode.SUBTRACT)
    extrude(amount=BOSS_EXTRUDE5_DEPTH)


solid = Compound([part.part, body_2_2.part])
